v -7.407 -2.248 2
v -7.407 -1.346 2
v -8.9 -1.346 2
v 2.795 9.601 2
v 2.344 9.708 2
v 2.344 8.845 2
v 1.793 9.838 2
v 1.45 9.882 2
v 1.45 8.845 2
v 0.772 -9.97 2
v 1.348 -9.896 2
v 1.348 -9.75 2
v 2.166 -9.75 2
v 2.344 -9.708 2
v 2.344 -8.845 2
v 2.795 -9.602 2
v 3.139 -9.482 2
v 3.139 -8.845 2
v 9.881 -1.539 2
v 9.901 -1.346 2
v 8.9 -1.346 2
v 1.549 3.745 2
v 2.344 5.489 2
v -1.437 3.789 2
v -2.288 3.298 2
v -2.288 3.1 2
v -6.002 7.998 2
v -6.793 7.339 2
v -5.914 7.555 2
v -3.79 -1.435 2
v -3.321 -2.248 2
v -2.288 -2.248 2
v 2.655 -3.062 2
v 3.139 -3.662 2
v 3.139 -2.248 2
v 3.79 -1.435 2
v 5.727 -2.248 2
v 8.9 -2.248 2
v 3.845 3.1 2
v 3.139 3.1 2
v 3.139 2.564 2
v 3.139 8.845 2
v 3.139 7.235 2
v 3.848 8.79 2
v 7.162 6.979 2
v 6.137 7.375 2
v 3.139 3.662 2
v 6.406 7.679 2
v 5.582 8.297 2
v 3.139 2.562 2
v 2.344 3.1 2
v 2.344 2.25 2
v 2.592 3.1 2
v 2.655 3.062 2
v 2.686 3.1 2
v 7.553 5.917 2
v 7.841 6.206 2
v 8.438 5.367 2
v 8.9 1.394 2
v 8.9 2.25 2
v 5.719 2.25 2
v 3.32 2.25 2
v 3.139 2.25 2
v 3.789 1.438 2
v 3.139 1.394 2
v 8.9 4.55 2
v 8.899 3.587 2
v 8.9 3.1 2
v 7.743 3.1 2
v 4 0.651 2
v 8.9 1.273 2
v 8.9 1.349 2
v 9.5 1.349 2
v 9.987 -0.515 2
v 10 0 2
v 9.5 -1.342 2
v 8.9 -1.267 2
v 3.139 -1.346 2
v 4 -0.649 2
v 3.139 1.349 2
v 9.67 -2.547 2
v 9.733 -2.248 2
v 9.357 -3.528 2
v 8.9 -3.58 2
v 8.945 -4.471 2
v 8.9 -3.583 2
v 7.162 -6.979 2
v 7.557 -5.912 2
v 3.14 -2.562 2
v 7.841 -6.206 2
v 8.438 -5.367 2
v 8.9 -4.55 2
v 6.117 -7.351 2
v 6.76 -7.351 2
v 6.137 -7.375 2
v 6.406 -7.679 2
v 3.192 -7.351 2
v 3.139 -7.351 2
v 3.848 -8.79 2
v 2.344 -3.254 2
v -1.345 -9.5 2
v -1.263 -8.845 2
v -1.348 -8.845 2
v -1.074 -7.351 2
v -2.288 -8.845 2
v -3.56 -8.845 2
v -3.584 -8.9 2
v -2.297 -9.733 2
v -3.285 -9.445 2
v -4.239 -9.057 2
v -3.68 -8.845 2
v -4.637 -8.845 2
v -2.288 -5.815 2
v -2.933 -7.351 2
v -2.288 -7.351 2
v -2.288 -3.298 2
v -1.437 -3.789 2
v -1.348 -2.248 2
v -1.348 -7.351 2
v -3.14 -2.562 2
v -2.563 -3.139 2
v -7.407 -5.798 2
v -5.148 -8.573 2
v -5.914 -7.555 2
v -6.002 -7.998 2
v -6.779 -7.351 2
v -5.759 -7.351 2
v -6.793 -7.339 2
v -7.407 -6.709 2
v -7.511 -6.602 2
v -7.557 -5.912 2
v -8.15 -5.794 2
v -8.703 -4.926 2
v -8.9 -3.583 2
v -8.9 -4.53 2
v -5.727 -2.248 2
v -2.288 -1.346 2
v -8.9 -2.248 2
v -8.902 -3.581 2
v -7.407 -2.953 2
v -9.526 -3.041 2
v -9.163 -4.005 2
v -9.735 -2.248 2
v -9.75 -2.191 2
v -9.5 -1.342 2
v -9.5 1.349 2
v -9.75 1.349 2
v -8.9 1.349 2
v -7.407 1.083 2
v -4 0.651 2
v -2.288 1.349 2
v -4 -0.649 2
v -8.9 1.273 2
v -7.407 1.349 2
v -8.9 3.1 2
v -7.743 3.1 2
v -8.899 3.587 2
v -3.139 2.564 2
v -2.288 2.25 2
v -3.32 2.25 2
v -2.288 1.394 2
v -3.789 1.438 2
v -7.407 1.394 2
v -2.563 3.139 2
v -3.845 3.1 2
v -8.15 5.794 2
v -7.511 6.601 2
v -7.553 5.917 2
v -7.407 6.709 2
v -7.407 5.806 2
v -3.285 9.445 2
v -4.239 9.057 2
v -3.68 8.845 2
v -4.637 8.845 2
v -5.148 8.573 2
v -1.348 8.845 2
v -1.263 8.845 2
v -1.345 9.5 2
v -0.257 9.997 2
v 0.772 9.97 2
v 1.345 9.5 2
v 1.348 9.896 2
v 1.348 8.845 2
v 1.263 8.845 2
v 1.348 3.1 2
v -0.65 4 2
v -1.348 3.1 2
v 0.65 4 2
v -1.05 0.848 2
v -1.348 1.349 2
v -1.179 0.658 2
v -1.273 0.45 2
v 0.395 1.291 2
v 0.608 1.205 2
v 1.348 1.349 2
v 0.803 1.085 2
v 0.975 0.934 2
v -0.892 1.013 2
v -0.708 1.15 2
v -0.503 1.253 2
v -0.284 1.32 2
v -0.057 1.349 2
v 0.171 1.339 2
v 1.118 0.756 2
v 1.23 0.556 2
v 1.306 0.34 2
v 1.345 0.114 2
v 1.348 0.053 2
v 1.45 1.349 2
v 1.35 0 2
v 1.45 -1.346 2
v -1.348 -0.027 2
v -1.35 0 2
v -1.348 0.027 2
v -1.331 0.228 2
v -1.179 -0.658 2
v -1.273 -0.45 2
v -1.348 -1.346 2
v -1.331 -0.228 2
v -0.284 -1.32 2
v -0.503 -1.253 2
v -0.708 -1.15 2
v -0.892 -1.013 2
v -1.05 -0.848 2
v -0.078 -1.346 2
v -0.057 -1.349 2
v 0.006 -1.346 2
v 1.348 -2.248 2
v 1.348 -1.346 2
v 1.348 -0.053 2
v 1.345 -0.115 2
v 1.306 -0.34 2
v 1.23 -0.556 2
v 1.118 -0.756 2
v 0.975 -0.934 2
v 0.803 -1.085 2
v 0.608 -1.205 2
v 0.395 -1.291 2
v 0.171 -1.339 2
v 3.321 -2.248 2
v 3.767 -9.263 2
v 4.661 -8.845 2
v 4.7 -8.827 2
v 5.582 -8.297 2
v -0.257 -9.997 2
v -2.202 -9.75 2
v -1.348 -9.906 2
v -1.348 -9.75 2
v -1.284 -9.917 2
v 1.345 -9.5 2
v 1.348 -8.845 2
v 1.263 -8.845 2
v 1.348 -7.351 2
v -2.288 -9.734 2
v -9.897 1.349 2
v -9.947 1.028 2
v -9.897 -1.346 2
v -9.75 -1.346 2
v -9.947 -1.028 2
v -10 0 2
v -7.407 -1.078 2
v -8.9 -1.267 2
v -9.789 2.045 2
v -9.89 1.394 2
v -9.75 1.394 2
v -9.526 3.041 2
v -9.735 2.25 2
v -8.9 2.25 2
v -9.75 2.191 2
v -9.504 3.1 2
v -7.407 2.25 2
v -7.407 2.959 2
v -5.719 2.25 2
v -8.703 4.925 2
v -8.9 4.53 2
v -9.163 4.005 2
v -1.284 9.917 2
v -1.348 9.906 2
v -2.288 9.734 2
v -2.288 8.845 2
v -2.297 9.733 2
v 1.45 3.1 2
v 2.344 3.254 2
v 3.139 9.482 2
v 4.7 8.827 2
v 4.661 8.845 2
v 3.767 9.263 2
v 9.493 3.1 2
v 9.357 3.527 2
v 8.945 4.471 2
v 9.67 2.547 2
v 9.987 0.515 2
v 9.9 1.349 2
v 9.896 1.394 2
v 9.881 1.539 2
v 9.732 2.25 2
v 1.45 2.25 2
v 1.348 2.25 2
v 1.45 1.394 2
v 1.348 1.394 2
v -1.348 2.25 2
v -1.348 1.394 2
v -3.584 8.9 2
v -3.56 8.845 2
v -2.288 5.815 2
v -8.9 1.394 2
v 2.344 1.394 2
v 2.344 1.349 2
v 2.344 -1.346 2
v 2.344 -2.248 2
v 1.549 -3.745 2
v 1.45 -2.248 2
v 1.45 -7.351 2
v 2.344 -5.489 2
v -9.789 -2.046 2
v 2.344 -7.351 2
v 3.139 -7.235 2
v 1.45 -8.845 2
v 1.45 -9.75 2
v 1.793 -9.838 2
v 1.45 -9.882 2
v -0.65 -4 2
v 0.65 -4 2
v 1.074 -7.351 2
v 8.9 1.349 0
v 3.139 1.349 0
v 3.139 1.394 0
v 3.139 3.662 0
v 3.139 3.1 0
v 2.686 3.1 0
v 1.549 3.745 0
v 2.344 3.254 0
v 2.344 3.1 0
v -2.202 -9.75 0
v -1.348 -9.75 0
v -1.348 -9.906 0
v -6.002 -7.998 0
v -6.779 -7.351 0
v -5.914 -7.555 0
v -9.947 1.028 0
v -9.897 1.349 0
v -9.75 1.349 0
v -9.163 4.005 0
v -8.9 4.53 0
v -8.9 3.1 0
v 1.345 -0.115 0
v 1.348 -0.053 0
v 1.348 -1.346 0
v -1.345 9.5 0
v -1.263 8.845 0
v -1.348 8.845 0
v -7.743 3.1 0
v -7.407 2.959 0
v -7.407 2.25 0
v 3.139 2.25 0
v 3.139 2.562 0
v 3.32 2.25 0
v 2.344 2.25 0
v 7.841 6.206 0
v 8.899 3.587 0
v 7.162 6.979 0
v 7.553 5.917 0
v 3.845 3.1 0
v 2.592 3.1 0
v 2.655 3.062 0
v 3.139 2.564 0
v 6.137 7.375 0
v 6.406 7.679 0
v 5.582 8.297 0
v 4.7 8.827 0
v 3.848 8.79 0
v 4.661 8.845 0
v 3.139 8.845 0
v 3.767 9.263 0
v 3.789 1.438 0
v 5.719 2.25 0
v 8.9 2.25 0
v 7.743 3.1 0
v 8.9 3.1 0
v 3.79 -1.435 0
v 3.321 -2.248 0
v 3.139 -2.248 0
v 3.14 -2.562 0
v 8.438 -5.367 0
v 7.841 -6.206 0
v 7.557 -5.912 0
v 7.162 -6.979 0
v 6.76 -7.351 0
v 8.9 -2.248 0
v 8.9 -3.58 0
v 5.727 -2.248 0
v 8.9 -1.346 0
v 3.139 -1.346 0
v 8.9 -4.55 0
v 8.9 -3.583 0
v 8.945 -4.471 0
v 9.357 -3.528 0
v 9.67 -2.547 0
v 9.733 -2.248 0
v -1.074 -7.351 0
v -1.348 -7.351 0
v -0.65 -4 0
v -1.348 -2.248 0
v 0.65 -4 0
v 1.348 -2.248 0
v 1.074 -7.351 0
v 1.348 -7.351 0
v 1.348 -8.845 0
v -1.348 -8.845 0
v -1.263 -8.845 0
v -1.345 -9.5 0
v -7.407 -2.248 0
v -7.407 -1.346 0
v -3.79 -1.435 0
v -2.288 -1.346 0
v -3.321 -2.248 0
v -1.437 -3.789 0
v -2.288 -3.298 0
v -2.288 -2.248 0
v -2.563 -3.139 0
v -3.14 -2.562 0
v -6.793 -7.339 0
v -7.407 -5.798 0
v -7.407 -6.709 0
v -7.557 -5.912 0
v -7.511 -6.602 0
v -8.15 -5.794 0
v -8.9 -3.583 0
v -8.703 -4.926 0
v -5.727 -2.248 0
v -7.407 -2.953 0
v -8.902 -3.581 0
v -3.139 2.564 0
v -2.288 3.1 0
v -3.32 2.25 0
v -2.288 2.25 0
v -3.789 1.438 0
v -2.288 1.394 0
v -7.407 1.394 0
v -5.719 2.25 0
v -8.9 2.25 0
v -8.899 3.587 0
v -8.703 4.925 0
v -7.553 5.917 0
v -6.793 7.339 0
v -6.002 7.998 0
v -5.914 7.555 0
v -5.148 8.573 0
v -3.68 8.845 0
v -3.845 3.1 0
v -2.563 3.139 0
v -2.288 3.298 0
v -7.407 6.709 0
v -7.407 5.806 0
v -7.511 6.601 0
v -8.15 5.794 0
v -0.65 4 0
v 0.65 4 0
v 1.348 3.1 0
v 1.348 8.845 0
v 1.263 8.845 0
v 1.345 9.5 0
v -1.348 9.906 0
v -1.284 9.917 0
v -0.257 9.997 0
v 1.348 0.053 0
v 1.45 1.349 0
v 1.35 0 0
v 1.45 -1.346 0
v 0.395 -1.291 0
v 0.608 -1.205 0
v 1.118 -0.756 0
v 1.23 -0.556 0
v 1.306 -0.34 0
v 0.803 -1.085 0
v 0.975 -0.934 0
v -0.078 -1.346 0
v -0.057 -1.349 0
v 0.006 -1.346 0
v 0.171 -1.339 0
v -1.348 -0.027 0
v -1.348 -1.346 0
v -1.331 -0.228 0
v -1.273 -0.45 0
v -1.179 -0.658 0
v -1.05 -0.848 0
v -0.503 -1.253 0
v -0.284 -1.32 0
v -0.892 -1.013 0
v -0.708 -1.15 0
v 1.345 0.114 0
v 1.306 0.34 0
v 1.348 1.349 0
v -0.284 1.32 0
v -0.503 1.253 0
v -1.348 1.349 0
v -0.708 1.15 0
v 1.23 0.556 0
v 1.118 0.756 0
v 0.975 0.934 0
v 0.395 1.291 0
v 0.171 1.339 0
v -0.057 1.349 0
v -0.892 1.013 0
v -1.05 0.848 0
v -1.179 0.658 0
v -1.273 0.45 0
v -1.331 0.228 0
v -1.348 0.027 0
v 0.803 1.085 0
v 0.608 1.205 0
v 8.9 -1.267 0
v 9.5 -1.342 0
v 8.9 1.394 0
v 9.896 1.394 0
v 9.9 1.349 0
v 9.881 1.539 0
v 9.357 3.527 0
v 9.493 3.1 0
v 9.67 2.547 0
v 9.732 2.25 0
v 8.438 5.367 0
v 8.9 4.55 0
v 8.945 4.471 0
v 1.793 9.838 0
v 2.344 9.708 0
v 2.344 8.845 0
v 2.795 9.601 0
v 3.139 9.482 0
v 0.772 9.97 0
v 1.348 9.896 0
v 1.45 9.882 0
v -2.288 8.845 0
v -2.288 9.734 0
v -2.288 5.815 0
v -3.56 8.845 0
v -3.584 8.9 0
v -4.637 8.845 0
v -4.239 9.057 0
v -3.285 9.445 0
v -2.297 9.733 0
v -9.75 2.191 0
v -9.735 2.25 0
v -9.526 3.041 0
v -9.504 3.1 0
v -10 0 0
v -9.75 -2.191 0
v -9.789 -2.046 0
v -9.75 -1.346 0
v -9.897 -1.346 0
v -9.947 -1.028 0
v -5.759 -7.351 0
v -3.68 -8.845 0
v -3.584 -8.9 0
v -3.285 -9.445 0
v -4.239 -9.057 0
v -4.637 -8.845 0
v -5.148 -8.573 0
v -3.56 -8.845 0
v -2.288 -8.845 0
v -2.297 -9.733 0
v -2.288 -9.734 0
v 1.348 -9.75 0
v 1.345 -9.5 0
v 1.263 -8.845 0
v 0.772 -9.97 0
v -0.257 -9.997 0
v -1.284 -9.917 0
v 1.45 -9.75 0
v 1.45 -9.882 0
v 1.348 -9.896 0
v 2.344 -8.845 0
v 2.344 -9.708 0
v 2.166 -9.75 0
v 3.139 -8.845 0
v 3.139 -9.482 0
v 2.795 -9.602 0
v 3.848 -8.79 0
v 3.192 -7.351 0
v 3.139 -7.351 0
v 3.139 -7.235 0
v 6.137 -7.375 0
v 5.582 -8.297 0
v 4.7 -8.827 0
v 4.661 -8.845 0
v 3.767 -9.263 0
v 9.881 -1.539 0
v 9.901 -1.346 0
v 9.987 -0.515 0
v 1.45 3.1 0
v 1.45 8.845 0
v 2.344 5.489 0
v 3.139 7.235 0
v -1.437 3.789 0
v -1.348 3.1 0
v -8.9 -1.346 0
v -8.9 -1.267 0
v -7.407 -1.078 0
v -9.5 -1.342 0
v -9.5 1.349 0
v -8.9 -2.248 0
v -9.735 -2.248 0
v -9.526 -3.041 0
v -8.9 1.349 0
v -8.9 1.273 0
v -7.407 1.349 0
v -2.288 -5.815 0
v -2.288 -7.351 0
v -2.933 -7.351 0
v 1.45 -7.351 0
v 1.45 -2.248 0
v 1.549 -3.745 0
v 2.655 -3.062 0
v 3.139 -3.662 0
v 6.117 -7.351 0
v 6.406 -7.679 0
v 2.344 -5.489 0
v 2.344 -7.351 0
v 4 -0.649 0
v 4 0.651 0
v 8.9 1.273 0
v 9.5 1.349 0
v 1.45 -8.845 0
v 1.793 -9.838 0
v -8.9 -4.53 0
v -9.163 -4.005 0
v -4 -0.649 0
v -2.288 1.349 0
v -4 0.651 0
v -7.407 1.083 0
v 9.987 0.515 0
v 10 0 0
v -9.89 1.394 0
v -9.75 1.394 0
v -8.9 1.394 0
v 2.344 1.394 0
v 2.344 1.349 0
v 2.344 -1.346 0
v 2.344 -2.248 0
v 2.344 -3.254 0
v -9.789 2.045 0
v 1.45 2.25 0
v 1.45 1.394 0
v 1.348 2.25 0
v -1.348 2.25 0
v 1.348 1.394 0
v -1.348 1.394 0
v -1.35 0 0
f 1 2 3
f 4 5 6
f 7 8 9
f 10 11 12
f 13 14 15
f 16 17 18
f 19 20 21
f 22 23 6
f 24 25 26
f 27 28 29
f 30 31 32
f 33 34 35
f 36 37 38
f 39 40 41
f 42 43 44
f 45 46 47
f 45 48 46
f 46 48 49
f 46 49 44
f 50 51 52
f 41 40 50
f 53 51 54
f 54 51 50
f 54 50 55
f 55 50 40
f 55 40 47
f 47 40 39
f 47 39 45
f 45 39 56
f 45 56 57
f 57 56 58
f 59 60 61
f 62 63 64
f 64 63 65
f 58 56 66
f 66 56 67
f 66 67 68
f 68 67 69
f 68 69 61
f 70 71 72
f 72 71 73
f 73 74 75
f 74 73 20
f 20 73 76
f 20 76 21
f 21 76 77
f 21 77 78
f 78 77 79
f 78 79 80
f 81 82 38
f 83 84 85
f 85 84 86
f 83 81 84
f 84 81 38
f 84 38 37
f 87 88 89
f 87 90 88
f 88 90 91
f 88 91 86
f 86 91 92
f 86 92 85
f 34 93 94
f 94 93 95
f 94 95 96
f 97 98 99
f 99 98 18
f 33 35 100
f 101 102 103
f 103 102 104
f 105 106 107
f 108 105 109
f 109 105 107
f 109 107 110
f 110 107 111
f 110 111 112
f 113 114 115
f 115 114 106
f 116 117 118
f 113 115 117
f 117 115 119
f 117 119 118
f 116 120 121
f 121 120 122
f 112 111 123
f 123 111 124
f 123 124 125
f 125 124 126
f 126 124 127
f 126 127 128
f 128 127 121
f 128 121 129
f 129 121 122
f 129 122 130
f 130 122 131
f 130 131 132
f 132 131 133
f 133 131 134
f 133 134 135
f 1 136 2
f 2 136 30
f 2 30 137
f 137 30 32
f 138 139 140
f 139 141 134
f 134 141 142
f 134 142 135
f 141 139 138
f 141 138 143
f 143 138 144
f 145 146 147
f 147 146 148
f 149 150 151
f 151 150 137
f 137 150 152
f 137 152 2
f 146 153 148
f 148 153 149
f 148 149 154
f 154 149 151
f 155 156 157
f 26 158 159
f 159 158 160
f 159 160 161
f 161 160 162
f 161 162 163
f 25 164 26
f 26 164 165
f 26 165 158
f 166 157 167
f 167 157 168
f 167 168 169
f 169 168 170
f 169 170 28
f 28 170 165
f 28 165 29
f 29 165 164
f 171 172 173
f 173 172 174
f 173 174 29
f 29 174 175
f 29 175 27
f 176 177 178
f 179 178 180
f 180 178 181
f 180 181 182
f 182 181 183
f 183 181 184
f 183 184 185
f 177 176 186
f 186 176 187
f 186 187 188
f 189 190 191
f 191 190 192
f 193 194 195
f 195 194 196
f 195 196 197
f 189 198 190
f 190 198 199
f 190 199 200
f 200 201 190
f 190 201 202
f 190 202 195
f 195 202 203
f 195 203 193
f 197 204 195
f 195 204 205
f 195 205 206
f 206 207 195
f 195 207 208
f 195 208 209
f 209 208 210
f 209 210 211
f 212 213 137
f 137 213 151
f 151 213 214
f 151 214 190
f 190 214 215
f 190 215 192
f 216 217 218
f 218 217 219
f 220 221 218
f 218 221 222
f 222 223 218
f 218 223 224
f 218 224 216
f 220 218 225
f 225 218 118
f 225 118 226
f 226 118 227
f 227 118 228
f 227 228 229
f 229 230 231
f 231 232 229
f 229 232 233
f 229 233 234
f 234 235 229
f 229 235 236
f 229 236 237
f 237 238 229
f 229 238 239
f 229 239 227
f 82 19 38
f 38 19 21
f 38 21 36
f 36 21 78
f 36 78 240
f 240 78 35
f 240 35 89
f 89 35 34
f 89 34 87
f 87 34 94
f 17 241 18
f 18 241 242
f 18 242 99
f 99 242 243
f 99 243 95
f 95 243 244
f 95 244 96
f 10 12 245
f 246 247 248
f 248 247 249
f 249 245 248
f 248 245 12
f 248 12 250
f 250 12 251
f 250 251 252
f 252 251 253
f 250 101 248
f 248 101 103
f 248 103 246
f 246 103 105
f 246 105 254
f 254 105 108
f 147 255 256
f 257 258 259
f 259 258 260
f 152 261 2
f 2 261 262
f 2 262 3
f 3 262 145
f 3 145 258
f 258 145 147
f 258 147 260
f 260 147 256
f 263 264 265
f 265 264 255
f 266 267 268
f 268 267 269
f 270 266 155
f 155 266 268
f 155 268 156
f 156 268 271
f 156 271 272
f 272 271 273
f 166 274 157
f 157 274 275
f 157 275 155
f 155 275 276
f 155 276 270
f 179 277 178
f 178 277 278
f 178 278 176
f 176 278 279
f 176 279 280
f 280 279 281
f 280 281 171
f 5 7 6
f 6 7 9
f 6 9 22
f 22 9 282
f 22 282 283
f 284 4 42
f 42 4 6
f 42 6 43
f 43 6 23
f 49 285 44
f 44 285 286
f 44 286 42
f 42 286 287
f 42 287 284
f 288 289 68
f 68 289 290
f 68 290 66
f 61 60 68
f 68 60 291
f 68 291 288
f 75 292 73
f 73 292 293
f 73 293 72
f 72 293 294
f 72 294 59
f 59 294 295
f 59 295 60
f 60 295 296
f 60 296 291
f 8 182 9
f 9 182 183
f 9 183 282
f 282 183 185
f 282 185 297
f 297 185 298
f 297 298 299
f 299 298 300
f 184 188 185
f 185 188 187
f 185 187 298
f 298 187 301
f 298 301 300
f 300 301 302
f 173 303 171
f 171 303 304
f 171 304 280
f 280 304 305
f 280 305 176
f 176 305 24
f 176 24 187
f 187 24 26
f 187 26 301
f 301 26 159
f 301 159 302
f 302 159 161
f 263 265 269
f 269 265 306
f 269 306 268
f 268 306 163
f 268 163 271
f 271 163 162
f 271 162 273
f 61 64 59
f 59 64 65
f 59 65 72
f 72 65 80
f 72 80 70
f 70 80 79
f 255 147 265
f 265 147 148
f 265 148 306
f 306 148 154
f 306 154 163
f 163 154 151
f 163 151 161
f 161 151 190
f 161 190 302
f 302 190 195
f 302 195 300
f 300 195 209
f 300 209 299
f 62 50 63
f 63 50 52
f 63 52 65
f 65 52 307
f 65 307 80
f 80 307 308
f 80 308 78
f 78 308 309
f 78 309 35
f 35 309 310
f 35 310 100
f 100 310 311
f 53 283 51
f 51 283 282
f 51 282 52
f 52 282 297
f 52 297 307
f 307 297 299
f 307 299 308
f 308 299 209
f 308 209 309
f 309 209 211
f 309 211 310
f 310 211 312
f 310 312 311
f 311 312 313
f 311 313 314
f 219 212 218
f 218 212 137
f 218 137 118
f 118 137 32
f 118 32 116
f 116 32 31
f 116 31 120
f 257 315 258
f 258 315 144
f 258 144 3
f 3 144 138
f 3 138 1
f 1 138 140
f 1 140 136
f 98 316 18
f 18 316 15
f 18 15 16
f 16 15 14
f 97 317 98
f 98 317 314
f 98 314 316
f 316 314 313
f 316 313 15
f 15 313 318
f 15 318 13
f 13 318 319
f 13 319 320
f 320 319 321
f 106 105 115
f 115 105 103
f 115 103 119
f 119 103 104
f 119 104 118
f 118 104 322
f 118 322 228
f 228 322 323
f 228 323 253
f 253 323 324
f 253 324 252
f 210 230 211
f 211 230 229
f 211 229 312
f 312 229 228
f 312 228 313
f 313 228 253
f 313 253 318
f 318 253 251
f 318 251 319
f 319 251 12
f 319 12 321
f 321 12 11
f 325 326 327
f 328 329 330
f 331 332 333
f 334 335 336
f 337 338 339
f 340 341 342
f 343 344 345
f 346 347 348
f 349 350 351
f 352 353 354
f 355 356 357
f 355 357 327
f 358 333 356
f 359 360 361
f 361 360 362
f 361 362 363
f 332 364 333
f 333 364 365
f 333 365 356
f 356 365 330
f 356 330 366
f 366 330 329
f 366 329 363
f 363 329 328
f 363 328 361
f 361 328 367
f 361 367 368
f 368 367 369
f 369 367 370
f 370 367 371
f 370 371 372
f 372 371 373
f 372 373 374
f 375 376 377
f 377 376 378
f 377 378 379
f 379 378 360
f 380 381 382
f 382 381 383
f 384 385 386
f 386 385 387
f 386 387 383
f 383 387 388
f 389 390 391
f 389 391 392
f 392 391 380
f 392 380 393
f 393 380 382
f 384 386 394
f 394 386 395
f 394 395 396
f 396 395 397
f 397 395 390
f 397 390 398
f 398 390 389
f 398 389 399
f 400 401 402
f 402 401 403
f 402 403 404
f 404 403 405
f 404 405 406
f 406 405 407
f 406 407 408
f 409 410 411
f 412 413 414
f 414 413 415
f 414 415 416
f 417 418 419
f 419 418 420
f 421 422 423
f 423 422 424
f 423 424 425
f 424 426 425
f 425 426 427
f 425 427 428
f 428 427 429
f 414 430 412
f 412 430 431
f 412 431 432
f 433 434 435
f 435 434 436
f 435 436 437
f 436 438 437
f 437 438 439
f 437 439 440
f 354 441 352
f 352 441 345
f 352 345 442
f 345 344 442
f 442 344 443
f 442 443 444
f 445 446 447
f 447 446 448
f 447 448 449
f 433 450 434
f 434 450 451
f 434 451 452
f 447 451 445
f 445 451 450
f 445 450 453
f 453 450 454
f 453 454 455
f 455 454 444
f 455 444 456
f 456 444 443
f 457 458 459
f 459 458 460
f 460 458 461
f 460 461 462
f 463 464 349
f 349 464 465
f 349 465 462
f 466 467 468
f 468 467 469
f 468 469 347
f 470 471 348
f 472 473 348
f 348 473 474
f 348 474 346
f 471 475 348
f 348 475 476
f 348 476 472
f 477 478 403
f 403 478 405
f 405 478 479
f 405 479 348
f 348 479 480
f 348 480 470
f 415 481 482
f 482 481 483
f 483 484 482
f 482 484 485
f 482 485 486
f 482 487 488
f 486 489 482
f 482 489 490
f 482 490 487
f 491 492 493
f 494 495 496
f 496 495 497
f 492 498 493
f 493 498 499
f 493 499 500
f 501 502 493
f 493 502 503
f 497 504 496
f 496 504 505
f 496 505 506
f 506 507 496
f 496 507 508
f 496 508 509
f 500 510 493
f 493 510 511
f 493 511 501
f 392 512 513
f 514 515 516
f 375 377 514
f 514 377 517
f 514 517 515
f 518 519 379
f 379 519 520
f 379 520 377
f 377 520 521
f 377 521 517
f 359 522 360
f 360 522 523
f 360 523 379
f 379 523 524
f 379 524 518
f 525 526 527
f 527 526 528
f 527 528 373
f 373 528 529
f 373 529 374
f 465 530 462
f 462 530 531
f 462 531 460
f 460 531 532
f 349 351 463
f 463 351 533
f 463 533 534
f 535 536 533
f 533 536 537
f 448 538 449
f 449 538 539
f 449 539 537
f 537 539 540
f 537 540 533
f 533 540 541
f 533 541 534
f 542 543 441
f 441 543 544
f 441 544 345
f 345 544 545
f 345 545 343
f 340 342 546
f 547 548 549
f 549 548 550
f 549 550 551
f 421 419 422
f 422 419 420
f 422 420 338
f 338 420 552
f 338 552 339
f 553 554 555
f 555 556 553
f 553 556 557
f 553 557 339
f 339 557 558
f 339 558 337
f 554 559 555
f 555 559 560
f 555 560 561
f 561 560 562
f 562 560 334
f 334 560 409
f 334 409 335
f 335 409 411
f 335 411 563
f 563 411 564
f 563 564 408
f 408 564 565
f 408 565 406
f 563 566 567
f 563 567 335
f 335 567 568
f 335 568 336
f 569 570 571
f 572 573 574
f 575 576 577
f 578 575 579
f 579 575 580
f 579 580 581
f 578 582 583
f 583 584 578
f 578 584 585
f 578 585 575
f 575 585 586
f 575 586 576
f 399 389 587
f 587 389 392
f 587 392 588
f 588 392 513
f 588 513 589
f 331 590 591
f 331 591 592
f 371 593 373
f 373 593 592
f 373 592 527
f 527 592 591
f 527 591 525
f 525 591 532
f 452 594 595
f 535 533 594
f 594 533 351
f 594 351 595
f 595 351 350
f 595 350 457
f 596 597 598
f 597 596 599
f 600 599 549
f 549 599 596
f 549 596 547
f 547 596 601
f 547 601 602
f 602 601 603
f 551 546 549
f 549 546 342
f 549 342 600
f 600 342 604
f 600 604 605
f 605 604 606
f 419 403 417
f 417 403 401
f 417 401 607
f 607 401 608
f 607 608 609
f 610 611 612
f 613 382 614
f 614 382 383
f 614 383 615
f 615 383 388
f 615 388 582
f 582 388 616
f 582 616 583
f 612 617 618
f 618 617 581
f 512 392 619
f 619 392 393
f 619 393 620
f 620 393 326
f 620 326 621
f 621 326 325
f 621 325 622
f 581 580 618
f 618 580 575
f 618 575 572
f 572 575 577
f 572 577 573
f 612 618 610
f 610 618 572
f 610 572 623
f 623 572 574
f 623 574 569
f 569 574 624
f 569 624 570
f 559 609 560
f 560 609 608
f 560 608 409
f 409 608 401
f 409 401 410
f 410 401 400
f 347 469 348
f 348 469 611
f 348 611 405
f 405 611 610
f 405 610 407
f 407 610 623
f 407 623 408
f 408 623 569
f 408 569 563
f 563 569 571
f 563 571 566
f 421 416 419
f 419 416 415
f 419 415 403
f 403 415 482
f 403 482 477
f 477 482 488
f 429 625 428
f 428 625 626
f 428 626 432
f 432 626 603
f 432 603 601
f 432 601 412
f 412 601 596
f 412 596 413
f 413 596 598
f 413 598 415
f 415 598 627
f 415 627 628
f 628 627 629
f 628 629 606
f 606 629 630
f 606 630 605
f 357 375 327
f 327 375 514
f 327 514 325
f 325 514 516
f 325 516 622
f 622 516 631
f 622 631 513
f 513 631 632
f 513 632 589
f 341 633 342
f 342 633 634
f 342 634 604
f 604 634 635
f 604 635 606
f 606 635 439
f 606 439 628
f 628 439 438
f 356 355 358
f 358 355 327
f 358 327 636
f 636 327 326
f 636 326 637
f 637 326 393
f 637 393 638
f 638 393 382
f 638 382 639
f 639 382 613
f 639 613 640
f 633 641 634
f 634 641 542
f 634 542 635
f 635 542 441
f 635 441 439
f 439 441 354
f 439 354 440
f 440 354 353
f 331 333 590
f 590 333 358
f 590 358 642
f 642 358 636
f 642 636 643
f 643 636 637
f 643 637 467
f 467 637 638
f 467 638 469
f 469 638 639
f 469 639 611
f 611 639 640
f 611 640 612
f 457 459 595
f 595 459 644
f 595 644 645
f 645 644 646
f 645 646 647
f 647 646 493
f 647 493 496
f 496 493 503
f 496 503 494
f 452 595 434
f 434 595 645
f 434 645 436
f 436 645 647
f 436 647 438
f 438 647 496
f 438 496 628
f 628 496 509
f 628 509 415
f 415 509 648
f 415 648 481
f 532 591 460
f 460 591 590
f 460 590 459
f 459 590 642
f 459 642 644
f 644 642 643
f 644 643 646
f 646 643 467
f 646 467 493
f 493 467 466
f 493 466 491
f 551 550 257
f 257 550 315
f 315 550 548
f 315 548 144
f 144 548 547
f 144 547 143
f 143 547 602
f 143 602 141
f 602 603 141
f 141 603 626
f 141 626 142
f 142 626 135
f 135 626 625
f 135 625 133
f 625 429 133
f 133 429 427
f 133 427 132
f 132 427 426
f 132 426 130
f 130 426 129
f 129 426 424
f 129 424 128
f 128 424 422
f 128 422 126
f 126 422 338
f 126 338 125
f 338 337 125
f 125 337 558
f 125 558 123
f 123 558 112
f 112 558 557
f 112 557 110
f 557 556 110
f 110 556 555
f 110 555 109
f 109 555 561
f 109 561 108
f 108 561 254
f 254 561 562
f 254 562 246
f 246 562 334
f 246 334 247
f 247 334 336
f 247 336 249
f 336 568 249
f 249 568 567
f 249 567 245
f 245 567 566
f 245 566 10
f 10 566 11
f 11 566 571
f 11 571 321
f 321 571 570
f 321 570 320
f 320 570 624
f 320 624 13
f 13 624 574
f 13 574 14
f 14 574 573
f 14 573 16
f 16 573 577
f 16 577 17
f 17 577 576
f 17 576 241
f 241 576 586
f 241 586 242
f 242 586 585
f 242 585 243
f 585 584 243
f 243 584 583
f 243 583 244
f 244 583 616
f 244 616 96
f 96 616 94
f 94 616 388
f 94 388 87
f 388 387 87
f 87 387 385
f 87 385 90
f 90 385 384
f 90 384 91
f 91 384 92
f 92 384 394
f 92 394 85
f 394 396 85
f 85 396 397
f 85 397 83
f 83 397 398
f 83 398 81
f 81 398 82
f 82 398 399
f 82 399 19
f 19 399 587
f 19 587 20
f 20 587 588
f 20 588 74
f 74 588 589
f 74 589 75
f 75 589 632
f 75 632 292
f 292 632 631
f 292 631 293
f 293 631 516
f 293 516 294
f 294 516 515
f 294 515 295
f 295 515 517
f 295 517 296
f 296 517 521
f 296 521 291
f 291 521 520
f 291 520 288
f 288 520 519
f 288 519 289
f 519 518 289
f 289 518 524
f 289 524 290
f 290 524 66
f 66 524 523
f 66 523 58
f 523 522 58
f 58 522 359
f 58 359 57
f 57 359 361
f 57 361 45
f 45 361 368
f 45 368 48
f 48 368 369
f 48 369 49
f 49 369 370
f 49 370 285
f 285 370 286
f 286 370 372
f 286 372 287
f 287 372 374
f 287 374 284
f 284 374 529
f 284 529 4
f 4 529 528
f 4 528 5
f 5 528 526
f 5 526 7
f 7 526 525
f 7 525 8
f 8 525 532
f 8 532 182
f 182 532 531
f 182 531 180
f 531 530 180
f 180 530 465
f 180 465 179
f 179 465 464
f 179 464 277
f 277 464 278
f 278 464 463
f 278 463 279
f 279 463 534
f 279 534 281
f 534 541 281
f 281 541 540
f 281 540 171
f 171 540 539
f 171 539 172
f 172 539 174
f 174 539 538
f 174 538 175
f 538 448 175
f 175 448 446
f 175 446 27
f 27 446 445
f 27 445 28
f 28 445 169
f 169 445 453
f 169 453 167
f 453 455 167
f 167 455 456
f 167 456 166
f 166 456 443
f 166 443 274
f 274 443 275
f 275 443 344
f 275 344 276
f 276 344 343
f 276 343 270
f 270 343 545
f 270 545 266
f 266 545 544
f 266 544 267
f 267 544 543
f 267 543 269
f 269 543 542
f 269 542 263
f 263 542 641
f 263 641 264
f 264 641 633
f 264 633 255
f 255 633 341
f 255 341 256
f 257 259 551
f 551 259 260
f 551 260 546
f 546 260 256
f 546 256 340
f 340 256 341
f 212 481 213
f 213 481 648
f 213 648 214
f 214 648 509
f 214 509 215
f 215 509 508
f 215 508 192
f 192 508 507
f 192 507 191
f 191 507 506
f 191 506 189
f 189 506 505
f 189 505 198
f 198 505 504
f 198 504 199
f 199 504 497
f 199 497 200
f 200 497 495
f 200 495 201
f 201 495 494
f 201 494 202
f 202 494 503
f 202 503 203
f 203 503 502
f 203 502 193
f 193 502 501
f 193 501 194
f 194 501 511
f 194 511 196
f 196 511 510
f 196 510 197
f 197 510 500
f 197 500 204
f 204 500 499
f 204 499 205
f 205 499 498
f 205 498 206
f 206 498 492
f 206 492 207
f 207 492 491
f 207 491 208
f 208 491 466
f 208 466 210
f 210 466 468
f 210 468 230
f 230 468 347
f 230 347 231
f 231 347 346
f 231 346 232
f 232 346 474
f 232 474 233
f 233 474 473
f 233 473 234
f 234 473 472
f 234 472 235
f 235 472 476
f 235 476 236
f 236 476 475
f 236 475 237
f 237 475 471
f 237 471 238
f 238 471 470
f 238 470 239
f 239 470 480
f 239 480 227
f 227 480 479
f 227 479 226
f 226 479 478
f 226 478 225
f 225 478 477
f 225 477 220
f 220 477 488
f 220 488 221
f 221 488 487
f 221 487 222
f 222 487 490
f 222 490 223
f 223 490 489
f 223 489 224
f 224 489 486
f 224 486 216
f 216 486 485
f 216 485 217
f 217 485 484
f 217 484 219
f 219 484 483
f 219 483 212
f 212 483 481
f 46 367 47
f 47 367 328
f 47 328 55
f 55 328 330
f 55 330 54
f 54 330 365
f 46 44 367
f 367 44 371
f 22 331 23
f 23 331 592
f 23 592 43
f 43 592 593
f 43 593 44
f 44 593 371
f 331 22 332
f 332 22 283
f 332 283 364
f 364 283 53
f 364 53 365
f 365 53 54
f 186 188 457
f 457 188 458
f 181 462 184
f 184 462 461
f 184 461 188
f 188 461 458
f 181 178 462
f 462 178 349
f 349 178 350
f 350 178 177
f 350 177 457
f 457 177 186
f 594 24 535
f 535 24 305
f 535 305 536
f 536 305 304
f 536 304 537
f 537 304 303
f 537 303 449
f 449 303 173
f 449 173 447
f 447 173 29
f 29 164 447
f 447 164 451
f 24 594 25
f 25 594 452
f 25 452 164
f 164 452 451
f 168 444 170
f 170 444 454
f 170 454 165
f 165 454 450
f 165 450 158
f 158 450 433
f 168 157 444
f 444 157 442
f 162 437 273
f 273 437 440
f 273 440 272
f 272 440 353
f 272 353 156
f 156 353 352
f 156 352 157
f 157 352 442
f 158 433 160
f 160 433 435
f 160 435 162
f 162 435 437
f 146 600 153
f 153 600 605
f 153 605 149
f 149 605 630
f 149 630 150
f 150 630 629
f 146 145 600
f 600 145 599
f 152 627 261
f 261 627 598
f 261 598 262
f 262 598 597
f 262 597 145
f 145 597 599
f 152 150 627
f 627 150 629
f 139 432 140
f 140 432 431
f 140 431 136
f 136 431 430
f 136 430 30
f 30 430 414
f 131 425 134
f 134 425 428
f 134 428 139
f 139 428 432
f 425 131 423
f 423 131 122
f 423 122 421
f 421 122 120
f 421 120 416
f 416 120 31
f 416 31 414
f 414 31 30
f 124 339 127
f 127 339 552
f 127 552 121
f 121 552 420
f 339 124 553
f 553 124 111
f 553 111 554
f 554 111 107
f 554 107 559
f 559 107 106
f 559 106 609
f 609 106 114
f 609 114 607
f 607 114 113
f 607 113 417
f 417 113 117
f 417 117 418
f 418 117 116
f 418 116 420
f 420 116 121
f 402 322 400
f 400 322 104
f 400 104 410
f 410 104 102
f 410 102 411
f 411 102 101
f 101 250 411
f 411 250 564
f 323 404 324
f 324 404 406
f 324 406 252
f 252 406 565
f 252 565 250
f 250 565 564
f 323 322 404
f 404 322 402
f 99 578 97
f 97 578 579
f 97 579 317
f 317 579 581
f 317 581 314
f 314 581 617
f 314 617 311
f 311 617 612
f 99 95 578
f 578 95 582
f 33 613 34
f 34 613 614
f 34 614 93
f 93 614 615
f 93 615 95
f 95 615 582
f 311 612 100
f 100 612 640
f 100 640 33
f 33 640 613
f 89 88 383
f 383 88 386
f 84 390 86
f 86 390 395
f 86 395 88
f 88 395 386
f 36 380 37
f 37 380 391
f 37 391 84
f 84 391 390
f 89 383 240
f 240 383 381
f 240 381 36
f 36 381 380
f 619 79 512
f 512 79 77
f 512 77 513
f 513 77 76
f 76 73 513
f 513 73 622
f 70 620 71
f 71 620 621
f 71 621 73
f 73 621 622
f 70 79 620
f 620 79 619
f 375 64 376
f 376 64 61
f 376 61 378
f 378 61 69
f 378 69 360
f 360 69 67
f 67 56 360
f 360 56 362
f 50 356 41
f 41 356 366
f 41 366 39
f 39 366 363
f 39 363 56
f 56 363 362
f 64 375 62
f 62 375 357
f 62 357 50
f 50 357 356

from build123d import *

# Parameters (mm, degrees)
ESBO_O1_R                = 10
ESBO_O1_R_2              = 1.35
RESSALTO_EXTRUS_O2_DEPTH = 2


with BuildPart() as part:
    # Esboço1 → Ressalto-extrusão2 (new body)
    with BuildSketch(Plane.XY):
        Circle(ESBO_O1_R)
        Circle(ESBO_O1_R_2, mode=Mode.SUBTRACT)
        Polygon((-1.345467814, 9.5), (1.345467814, 9.5), (0.65, 4), (0, 4), (-0.65, 4), align=None, mode=Mode.SUBTRACT)
        Polygon((2.655029784, 3.061587308), (6.136998996, 7.375467915), (3.847574626, 8.789565014), (1.549001215, 3.744742346), (2.102015499, 3.403164827), align=None, mode=Mode.SUBTRACT)
        Polygon((-1.436650808, 3.789265688), (-3.5837744, 8.900384525), (-5.914346634, 7.555182826), (-2.562558048, 3.139394249), (-1.999604428, 3.464329969), align=None, mode=Mode.SUBTRACT)
        Polygon((-3.463644773, 2.000791065), (-3.788773321, 1.43794879), (-8.899156331, 3.58682314), (-7.553156341, 5.91693442), (-3.138516225, 2.563633341), align=None, mode=Mode.SUBTRACT)
        Polygon((-3.999999765, 0.001370256), (-4.000222432, -0.648629706), (-9.500460351, -1.342213377), (-9.499538534, 1.348722092), (-3.999777099, 0.651370218), align=None, mode=Mode.SUBTRACT)
        Polygon((-3.465014758, -1.998417556), (-3.140271905, -2.561482454), (-7.557208424, -5.911758154), (-8.901611674, -3.580725239), (-3.789757611, -1.435352658), align=None, mode=Mode.SUBTRACT)
        Polygon((-1.999604428, -3.464329969), (-1.436650808, -3.789265688), (-3.5837744, -8.900384525), (-5.914346634, -7.555182826), (-2.562558048, -3.139394249), align=None, mode=Mode.SUBTRACT)
        Polygon((-0.65, -4), (-1.345467814, -9.5), (1.345467814, -9.5), (0.65, -4), (0, -4), align=None, mode=Mode.SUBTRACT)
        Polygon((2.102015499, -3.403164827), (2.655029784, -3.061587308), (6.136998996, -7.375467915), (3.847574626, -8.789565014), (1.549001215, -3.744742346), align=None, mode=Mode.SUBTRACT)
        Polygon((3.465014758, -1.998417556), (3.789757611, -1.435352658), (8.901611674, -3.580725239), (7.557208424, -5.911758154), (3.140271905, -2.561482454), align=None, mode=Mode.SUBTRACT)
        Polygon((3.999999765, 0.001370256), (3.999777099, 0.651370218), (9.499538534, 1.348722092), (9.500460351, -1.342213377), (4.000222432, -0.648629706), align=None, mode=Mode.SUBTRACT)
        Polygon((3.463644773, 2.000791065), (3.138516225, 2.563633341), (7.553156341, 5.91693442), (8.899156331, 3.58682314), (3.788773321, 1.43794879), align=None, mode=Mode.SUBTRACT)
    extrude(amount=RESSALTO_EXTRUS_O2_DEPTH)


solid = part.part
